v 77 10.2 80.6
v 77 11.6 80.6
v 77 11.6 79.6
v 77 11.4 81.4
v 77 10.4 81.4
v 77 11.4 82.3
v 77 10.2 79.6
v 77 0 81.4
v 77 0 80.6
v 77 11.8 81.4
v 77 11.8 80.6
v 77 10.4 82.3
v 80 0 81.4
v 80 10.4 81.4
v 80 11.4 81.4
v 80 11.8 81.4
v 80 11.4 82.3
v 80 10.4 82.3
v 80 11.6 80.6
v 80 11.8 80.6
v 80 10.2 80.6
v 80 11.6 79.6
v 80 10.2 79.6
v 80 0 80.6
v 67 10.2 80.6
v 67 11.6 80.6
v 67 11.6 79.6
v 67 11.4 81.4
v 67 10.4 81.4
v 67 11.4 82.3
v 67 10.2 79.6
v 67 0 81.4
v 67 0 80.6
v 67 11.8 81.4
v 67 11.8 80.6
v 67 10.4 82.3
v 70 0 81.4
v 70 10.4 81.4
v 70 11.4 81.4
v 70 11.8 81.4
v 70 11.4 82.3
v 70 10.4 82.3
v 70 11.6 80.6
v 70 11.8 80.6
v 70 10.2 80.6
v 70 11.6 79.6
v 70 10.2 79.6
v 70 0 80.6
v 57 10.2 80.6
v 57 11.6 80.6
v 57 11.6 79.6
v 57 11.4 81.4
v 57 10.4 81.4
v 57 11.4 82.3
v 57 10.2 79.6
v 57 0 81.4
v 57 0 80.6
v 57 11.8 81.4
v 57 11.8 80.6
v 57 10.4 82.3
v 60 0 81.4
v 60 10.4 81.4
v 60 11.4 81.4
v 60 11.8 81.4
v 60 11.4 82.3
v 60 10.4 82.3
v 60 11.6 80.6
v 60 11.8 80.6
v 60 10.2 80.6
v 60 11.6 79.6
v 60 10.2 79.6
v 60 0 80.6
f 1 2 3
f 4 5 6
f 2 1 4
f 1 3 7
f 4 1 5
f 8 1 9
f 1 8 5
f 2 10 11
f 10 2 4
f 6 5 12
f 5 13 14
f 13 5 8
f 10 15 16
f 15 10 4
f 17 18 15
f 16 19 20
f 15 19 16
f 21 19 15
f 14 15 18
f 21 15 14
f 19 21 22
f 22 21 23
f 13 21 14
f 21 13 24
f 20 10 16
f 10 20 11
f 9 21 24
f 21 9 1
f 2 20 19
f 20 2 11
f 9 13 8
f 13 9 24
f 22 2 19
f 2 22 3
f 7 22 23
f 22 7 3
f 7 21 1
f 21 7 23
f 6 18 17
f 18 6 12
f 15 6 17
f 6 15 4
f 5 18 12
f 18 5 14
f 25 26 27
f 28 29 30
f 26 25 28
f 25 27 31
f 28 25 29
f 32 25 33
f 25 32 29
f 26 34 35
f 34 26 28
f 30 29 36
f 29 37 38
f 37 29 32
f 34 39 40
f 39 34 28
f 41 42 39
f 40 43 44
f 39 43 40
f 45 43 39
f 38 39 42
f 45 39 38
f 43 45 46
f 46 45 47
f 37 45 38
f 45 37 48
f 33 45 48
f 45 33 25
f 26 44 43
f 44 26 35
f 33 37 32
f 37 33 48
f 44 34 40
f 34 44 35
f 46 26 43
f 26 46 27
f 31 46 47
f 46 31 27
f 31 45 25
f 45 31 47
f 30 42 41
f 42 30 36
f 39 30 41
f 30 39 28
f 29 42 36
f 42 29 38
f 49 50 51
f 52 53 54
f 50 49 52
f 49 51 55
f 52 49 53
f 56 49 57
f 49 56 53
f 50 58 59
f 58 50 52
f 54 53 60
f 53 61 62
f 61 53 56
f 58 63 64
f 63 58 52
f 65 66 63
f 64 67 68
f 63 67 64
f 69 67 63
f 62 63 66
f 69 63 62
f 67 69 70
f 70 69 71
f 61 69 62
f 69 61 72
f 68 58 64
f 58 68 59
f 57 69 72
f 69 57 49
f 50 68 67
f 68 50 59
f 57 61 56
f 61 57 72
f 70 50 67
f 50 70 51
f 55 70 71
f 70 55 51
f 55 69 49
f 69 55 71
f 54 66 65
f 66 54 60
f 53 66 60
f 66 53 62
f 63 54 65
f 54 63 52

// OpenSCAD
// file: D:/Projects/assembly-workshop/outputs/Screen_Pi_Hue_SCR5-H8_2026-10-31/checks/geometry.scad
// SCR5-G; mm; FRONT view: X right, Z up, Y into rack. Glass/plate front Y=0.
// Measured values: work/screen-5in/Dimensions.md. Physical fit/strength UNKNOWN.
part="plate";
DROP=0.45; // coupon winner can be substituted here; all three pins use this DROP
LIP=0.8; LIP_ON=true;
LIP_EDGES=[true,true,false,false]; // left,right,bottom,top; Brian: side lips only, cosmetic
FRAME_STEP=1.5; // measured glass-edge inset to metal LCD frame, left/right only
SHIM=0; // moves rear frame seat and plate-boss mating face back
$fn=48;
GCX=33; GCZ=41.5; PW=252; PH=88.8; PT=4;
GW=120.7; GH=77.2; CLEAR=0.2; WW=GW+2*CLEAR; WH=GH+2*CLEAR;
SEAT=13.3+SHIM; FT=3;
SO=[56.45,34]; BTN_X=[45.5,35.5,25.5];
PCB_TOP=38; GAP=0.10; LEAF_T=0.8;
HOLE=[3.4,40.3,44.7];
BX=[GCX-68,GCX+68]; BZ=[10,72];
// DSI connector X extent is unmeasured: conservative assumed 8 mm inward from PCB edge.
DSI=[GCX-60.5,9.1,GCZ-38+30,8,5.25,21];
module xz(y,d){translate([0,y+d,0])rotate([90,0,0])linear_extrude(d)children();}
// rr/rack_slots copied from SCR5-F; same exact slot centres, outline shifted -0.05 Z to centre 44.4.
module rr(w,h,r){hull()for(x=[-w/2+r,w/2-r],z=[-h/2+r,h/2-r])translate([x,z])circle(r=r);}
module rack_slots(){for(x=[-118.2625,118.2625],z=[6.323,38.127,50.773,82.577])translate([x,z])hull()for(dx=[-1.5,1.5])translate([dx,0])circle(d=7);}
module cyl_y(x,y,z,d,h){translate([x,y,z])rotate([-90,0,0])cylinder(d=d,h=h);}
module window_cut(){
  xz(-0.02,4.04)translate([GCX,GCZ])square([WW,WH],center=true);
  // 0.3 x 45-degree chamfer, square corners, front only.
  translate([GCX,0.3,GCZ])rotate([90,0,0])
    linear_extrude(height=0.3,scale=[(WW+0.6)/WW,(WH+0.6)/WH])square([WW,WH],center=true);
}
module lips(){
  // Cosmetic side ledges only; rear frame/standoffs set depth and retain the screen.
  if(LIP_ON)for(i=[0:3])if(LIP_EDGES[i]){
    if(i<2)translate([GCX+(i==0?-WW/2:WW/2-LIP),2.5,GCZ-GH/2+4])cube([LIP,0.8,GH-8]);
    else translate([GCX-GW/2+4,2.5,GCZ+(i==2?-WH/2:WH/2-LIP)])cube([GW-8,0.8,LIP]);
  }
}
// Leaf/nub/bump geometry copied from SCR5-WP-A, translated to this glass centre.
module leaves(){for(x=BTN_X)translate([GCX+x-1.5,0,GCZ]){
  translate([0,0,PCB_TOP+GAP+0.9+0.1])cube([3,11.8,LEAF_T]);
  translate([0,10.2,PCB_TOP+GAP])cube([3,1.4,1.0+LEAF_T/2]);
  translate([0,10.4,PCB_TOP+GAP+1.0+LEAF_T])cube([3,1.0,0.9]);
}}
module plate(){difference(){union(){
  difference(){xz(0,PT)translate([0,PH/2])rr(PW,PH,2.5);window_cut();}
  for(x=BX,z=BZ)cyl_y(x,3.9,z,8,SEAT-3.9);
  leaves(); lips();
 }
 xz(-0.02,4.04)rack_slots();
 for(x=BTN_X)translate([GCX+x-HOLE[0]/2,-0.02,GCZ+HOLE[1]])cube([HOLE[0],SEAT+FT+0.04,HOLE[2]-HOLE[1]]);
 // Printed-in screw pilots (no heat-set OD assumption): nominal M2.5, fit UNKNOWN.
 for(x=BX,z=BZ)cyl_y(x,SEAT-6,z,2.1,6.02);
 // Rear engraving, 0.5 deep, left field.
 xz(3.5,0.52)translate([-75,40])mirror([1,0])text("SCR5-G",size=6,halign="center",font="Liberation Sans:style=Bold");
}}
module frame_blank(){
  // C-shaped perimeter; no material across the board centre / touch FPC.
  xz(SEAT,FT)translate([GCX,GCZ])difference(){square([132,76],center=true);square([116,60],center=true);}
  for(sx=[-1,1],sz=[-1,1])cyl_y(GCX+sx*SO[0],SEAT,GCZ+sz*SO[1],9,FT);
  for(x=BX,z=BZ)hull(){cyl_y(x,SEAT,z,8,FT);cyl_y(GCX+(x<GCX?-62:62),SEAT,z,8,FT);}
}
module dsi_keepout(){translate([DSI[0]-3,DSI[1]-3,DSI[2]-3])cube([DSI[3]+6,DSI[4]+6,DSI[5]+6]);}
module ribbon_route(){
  // Open left/up corridor 18 mm wide; extends past top of plate.
  translate([GCX-84,6.1,GCZ-11])cube([18,24,65]);
  translate([GCX-84,6.1,GCZ-11])cube([32,24,27]);
}
module frame(){difference(){frame_blank();dsi_keepout();ribbon_route();
 for(sx=[-1,1],sz=[-1,1])cyl_y(GCX+sx*SO[0],SEAT-0.02,GCZ+sz*SO[1],2.8,FT+0.04);
 for(x=BX,z=BZ)cyl_y(x,SEAT-0.02,z,2.8,FT+0.04);
}}
// Pin polygon/cap/notch/dot design copied unchanged from SCR5-WP-A.
module pin(d,dots){s=2*d+0.5;difference(){union(){
 translate([-1.5,0,0])rotate([90,0,90])linear_extrude(3)polygon([
 [-s-0.02,40.5],[10.2,40.5],[10.2,41.0],[11.5,41.0],[11.5+2*d,41.0-d],[15,41.0-d],[15,44.5],[-s-0.02,44.5]]);
 translate([-2.5,-s-1.5,39.6])cube([5,1.5,5.8]);
 }for(i=[0:dots-1])translate([(i-(dots-1)/2)*1.4,-s-1.5-0.01,43.5])rotate([-90,0,0])cylinder(d=0.9,h=0.4);}}
module placed_pin(i){translate([GCX+BTN_X[i],0,GCZ])pin(DROP,i+1);}
// Measured layers: cover glass 0.9 + second glass 1.6, metal frame 3.0,
// open gap 2.0, PCB 1.6. Metal frame inset ~1.5 at LEFT/RIGHT only.
// PCB centred under glass and full metal-frame top/bottom extent remain UNKNOWN.
module glass(){translate([GCX-GW/2,0,GCZ-GH/2])cube([GW,2.5,GH]);}
module lcd(){
  translate([GCX-GW/2+FRAME_STEP,2.5,GCZ-GH/2])cube([GW-2*FRAME_STEP,3.0,GH]);
}
module pcb(){translate([GCX-60.5,7.5,GCZ-38])cube([121,1.6,76]);}
module standoffs(){for(sx=[-1,1],sz=[-1,1])difference(){cyl_y(GCX+sx*SO[0],9.1,GCZ+sz*SO[1],5.5,4.2);cyl_y(GCX+sx*SO[0],9.08,GCZ+sz*SO[1],2.5,4.24);}}
module buttons(){for(x=BTN_X){
 translate([GCX+x-3.5,9.1,GCZ+38-3.4])cube([7,3.6,2.4]);
 translate([GCX+x-1.5,9.1,GCZ+37])cube([3,3.6,1]);
}}
module dsi(){translate([DSI[0],DSI[1],DSI[2]])cube([DSI[3],DSI[4],DSI[5]]);}
module touch(){translate([GCX-10,9.1,GCZ-5])cube([20,2,10]);} // lateral extent unmeasured
module dummy(){glass();lcd();pcb();standoffs();buttons();dsi();touch();}
module assembly(){color("gray")plate();color("orange")frame();for(i=[0:2])color("cyan")placed_pin(i);color([0.2,0.3,0.4,0.4])dummy();}
// main file
include <D:/Projects/assembly-workshop/outputs/Screen_Pi_Hue_SCR5-H8_2026-10-31/checks/geometry.scad>
leaves();
